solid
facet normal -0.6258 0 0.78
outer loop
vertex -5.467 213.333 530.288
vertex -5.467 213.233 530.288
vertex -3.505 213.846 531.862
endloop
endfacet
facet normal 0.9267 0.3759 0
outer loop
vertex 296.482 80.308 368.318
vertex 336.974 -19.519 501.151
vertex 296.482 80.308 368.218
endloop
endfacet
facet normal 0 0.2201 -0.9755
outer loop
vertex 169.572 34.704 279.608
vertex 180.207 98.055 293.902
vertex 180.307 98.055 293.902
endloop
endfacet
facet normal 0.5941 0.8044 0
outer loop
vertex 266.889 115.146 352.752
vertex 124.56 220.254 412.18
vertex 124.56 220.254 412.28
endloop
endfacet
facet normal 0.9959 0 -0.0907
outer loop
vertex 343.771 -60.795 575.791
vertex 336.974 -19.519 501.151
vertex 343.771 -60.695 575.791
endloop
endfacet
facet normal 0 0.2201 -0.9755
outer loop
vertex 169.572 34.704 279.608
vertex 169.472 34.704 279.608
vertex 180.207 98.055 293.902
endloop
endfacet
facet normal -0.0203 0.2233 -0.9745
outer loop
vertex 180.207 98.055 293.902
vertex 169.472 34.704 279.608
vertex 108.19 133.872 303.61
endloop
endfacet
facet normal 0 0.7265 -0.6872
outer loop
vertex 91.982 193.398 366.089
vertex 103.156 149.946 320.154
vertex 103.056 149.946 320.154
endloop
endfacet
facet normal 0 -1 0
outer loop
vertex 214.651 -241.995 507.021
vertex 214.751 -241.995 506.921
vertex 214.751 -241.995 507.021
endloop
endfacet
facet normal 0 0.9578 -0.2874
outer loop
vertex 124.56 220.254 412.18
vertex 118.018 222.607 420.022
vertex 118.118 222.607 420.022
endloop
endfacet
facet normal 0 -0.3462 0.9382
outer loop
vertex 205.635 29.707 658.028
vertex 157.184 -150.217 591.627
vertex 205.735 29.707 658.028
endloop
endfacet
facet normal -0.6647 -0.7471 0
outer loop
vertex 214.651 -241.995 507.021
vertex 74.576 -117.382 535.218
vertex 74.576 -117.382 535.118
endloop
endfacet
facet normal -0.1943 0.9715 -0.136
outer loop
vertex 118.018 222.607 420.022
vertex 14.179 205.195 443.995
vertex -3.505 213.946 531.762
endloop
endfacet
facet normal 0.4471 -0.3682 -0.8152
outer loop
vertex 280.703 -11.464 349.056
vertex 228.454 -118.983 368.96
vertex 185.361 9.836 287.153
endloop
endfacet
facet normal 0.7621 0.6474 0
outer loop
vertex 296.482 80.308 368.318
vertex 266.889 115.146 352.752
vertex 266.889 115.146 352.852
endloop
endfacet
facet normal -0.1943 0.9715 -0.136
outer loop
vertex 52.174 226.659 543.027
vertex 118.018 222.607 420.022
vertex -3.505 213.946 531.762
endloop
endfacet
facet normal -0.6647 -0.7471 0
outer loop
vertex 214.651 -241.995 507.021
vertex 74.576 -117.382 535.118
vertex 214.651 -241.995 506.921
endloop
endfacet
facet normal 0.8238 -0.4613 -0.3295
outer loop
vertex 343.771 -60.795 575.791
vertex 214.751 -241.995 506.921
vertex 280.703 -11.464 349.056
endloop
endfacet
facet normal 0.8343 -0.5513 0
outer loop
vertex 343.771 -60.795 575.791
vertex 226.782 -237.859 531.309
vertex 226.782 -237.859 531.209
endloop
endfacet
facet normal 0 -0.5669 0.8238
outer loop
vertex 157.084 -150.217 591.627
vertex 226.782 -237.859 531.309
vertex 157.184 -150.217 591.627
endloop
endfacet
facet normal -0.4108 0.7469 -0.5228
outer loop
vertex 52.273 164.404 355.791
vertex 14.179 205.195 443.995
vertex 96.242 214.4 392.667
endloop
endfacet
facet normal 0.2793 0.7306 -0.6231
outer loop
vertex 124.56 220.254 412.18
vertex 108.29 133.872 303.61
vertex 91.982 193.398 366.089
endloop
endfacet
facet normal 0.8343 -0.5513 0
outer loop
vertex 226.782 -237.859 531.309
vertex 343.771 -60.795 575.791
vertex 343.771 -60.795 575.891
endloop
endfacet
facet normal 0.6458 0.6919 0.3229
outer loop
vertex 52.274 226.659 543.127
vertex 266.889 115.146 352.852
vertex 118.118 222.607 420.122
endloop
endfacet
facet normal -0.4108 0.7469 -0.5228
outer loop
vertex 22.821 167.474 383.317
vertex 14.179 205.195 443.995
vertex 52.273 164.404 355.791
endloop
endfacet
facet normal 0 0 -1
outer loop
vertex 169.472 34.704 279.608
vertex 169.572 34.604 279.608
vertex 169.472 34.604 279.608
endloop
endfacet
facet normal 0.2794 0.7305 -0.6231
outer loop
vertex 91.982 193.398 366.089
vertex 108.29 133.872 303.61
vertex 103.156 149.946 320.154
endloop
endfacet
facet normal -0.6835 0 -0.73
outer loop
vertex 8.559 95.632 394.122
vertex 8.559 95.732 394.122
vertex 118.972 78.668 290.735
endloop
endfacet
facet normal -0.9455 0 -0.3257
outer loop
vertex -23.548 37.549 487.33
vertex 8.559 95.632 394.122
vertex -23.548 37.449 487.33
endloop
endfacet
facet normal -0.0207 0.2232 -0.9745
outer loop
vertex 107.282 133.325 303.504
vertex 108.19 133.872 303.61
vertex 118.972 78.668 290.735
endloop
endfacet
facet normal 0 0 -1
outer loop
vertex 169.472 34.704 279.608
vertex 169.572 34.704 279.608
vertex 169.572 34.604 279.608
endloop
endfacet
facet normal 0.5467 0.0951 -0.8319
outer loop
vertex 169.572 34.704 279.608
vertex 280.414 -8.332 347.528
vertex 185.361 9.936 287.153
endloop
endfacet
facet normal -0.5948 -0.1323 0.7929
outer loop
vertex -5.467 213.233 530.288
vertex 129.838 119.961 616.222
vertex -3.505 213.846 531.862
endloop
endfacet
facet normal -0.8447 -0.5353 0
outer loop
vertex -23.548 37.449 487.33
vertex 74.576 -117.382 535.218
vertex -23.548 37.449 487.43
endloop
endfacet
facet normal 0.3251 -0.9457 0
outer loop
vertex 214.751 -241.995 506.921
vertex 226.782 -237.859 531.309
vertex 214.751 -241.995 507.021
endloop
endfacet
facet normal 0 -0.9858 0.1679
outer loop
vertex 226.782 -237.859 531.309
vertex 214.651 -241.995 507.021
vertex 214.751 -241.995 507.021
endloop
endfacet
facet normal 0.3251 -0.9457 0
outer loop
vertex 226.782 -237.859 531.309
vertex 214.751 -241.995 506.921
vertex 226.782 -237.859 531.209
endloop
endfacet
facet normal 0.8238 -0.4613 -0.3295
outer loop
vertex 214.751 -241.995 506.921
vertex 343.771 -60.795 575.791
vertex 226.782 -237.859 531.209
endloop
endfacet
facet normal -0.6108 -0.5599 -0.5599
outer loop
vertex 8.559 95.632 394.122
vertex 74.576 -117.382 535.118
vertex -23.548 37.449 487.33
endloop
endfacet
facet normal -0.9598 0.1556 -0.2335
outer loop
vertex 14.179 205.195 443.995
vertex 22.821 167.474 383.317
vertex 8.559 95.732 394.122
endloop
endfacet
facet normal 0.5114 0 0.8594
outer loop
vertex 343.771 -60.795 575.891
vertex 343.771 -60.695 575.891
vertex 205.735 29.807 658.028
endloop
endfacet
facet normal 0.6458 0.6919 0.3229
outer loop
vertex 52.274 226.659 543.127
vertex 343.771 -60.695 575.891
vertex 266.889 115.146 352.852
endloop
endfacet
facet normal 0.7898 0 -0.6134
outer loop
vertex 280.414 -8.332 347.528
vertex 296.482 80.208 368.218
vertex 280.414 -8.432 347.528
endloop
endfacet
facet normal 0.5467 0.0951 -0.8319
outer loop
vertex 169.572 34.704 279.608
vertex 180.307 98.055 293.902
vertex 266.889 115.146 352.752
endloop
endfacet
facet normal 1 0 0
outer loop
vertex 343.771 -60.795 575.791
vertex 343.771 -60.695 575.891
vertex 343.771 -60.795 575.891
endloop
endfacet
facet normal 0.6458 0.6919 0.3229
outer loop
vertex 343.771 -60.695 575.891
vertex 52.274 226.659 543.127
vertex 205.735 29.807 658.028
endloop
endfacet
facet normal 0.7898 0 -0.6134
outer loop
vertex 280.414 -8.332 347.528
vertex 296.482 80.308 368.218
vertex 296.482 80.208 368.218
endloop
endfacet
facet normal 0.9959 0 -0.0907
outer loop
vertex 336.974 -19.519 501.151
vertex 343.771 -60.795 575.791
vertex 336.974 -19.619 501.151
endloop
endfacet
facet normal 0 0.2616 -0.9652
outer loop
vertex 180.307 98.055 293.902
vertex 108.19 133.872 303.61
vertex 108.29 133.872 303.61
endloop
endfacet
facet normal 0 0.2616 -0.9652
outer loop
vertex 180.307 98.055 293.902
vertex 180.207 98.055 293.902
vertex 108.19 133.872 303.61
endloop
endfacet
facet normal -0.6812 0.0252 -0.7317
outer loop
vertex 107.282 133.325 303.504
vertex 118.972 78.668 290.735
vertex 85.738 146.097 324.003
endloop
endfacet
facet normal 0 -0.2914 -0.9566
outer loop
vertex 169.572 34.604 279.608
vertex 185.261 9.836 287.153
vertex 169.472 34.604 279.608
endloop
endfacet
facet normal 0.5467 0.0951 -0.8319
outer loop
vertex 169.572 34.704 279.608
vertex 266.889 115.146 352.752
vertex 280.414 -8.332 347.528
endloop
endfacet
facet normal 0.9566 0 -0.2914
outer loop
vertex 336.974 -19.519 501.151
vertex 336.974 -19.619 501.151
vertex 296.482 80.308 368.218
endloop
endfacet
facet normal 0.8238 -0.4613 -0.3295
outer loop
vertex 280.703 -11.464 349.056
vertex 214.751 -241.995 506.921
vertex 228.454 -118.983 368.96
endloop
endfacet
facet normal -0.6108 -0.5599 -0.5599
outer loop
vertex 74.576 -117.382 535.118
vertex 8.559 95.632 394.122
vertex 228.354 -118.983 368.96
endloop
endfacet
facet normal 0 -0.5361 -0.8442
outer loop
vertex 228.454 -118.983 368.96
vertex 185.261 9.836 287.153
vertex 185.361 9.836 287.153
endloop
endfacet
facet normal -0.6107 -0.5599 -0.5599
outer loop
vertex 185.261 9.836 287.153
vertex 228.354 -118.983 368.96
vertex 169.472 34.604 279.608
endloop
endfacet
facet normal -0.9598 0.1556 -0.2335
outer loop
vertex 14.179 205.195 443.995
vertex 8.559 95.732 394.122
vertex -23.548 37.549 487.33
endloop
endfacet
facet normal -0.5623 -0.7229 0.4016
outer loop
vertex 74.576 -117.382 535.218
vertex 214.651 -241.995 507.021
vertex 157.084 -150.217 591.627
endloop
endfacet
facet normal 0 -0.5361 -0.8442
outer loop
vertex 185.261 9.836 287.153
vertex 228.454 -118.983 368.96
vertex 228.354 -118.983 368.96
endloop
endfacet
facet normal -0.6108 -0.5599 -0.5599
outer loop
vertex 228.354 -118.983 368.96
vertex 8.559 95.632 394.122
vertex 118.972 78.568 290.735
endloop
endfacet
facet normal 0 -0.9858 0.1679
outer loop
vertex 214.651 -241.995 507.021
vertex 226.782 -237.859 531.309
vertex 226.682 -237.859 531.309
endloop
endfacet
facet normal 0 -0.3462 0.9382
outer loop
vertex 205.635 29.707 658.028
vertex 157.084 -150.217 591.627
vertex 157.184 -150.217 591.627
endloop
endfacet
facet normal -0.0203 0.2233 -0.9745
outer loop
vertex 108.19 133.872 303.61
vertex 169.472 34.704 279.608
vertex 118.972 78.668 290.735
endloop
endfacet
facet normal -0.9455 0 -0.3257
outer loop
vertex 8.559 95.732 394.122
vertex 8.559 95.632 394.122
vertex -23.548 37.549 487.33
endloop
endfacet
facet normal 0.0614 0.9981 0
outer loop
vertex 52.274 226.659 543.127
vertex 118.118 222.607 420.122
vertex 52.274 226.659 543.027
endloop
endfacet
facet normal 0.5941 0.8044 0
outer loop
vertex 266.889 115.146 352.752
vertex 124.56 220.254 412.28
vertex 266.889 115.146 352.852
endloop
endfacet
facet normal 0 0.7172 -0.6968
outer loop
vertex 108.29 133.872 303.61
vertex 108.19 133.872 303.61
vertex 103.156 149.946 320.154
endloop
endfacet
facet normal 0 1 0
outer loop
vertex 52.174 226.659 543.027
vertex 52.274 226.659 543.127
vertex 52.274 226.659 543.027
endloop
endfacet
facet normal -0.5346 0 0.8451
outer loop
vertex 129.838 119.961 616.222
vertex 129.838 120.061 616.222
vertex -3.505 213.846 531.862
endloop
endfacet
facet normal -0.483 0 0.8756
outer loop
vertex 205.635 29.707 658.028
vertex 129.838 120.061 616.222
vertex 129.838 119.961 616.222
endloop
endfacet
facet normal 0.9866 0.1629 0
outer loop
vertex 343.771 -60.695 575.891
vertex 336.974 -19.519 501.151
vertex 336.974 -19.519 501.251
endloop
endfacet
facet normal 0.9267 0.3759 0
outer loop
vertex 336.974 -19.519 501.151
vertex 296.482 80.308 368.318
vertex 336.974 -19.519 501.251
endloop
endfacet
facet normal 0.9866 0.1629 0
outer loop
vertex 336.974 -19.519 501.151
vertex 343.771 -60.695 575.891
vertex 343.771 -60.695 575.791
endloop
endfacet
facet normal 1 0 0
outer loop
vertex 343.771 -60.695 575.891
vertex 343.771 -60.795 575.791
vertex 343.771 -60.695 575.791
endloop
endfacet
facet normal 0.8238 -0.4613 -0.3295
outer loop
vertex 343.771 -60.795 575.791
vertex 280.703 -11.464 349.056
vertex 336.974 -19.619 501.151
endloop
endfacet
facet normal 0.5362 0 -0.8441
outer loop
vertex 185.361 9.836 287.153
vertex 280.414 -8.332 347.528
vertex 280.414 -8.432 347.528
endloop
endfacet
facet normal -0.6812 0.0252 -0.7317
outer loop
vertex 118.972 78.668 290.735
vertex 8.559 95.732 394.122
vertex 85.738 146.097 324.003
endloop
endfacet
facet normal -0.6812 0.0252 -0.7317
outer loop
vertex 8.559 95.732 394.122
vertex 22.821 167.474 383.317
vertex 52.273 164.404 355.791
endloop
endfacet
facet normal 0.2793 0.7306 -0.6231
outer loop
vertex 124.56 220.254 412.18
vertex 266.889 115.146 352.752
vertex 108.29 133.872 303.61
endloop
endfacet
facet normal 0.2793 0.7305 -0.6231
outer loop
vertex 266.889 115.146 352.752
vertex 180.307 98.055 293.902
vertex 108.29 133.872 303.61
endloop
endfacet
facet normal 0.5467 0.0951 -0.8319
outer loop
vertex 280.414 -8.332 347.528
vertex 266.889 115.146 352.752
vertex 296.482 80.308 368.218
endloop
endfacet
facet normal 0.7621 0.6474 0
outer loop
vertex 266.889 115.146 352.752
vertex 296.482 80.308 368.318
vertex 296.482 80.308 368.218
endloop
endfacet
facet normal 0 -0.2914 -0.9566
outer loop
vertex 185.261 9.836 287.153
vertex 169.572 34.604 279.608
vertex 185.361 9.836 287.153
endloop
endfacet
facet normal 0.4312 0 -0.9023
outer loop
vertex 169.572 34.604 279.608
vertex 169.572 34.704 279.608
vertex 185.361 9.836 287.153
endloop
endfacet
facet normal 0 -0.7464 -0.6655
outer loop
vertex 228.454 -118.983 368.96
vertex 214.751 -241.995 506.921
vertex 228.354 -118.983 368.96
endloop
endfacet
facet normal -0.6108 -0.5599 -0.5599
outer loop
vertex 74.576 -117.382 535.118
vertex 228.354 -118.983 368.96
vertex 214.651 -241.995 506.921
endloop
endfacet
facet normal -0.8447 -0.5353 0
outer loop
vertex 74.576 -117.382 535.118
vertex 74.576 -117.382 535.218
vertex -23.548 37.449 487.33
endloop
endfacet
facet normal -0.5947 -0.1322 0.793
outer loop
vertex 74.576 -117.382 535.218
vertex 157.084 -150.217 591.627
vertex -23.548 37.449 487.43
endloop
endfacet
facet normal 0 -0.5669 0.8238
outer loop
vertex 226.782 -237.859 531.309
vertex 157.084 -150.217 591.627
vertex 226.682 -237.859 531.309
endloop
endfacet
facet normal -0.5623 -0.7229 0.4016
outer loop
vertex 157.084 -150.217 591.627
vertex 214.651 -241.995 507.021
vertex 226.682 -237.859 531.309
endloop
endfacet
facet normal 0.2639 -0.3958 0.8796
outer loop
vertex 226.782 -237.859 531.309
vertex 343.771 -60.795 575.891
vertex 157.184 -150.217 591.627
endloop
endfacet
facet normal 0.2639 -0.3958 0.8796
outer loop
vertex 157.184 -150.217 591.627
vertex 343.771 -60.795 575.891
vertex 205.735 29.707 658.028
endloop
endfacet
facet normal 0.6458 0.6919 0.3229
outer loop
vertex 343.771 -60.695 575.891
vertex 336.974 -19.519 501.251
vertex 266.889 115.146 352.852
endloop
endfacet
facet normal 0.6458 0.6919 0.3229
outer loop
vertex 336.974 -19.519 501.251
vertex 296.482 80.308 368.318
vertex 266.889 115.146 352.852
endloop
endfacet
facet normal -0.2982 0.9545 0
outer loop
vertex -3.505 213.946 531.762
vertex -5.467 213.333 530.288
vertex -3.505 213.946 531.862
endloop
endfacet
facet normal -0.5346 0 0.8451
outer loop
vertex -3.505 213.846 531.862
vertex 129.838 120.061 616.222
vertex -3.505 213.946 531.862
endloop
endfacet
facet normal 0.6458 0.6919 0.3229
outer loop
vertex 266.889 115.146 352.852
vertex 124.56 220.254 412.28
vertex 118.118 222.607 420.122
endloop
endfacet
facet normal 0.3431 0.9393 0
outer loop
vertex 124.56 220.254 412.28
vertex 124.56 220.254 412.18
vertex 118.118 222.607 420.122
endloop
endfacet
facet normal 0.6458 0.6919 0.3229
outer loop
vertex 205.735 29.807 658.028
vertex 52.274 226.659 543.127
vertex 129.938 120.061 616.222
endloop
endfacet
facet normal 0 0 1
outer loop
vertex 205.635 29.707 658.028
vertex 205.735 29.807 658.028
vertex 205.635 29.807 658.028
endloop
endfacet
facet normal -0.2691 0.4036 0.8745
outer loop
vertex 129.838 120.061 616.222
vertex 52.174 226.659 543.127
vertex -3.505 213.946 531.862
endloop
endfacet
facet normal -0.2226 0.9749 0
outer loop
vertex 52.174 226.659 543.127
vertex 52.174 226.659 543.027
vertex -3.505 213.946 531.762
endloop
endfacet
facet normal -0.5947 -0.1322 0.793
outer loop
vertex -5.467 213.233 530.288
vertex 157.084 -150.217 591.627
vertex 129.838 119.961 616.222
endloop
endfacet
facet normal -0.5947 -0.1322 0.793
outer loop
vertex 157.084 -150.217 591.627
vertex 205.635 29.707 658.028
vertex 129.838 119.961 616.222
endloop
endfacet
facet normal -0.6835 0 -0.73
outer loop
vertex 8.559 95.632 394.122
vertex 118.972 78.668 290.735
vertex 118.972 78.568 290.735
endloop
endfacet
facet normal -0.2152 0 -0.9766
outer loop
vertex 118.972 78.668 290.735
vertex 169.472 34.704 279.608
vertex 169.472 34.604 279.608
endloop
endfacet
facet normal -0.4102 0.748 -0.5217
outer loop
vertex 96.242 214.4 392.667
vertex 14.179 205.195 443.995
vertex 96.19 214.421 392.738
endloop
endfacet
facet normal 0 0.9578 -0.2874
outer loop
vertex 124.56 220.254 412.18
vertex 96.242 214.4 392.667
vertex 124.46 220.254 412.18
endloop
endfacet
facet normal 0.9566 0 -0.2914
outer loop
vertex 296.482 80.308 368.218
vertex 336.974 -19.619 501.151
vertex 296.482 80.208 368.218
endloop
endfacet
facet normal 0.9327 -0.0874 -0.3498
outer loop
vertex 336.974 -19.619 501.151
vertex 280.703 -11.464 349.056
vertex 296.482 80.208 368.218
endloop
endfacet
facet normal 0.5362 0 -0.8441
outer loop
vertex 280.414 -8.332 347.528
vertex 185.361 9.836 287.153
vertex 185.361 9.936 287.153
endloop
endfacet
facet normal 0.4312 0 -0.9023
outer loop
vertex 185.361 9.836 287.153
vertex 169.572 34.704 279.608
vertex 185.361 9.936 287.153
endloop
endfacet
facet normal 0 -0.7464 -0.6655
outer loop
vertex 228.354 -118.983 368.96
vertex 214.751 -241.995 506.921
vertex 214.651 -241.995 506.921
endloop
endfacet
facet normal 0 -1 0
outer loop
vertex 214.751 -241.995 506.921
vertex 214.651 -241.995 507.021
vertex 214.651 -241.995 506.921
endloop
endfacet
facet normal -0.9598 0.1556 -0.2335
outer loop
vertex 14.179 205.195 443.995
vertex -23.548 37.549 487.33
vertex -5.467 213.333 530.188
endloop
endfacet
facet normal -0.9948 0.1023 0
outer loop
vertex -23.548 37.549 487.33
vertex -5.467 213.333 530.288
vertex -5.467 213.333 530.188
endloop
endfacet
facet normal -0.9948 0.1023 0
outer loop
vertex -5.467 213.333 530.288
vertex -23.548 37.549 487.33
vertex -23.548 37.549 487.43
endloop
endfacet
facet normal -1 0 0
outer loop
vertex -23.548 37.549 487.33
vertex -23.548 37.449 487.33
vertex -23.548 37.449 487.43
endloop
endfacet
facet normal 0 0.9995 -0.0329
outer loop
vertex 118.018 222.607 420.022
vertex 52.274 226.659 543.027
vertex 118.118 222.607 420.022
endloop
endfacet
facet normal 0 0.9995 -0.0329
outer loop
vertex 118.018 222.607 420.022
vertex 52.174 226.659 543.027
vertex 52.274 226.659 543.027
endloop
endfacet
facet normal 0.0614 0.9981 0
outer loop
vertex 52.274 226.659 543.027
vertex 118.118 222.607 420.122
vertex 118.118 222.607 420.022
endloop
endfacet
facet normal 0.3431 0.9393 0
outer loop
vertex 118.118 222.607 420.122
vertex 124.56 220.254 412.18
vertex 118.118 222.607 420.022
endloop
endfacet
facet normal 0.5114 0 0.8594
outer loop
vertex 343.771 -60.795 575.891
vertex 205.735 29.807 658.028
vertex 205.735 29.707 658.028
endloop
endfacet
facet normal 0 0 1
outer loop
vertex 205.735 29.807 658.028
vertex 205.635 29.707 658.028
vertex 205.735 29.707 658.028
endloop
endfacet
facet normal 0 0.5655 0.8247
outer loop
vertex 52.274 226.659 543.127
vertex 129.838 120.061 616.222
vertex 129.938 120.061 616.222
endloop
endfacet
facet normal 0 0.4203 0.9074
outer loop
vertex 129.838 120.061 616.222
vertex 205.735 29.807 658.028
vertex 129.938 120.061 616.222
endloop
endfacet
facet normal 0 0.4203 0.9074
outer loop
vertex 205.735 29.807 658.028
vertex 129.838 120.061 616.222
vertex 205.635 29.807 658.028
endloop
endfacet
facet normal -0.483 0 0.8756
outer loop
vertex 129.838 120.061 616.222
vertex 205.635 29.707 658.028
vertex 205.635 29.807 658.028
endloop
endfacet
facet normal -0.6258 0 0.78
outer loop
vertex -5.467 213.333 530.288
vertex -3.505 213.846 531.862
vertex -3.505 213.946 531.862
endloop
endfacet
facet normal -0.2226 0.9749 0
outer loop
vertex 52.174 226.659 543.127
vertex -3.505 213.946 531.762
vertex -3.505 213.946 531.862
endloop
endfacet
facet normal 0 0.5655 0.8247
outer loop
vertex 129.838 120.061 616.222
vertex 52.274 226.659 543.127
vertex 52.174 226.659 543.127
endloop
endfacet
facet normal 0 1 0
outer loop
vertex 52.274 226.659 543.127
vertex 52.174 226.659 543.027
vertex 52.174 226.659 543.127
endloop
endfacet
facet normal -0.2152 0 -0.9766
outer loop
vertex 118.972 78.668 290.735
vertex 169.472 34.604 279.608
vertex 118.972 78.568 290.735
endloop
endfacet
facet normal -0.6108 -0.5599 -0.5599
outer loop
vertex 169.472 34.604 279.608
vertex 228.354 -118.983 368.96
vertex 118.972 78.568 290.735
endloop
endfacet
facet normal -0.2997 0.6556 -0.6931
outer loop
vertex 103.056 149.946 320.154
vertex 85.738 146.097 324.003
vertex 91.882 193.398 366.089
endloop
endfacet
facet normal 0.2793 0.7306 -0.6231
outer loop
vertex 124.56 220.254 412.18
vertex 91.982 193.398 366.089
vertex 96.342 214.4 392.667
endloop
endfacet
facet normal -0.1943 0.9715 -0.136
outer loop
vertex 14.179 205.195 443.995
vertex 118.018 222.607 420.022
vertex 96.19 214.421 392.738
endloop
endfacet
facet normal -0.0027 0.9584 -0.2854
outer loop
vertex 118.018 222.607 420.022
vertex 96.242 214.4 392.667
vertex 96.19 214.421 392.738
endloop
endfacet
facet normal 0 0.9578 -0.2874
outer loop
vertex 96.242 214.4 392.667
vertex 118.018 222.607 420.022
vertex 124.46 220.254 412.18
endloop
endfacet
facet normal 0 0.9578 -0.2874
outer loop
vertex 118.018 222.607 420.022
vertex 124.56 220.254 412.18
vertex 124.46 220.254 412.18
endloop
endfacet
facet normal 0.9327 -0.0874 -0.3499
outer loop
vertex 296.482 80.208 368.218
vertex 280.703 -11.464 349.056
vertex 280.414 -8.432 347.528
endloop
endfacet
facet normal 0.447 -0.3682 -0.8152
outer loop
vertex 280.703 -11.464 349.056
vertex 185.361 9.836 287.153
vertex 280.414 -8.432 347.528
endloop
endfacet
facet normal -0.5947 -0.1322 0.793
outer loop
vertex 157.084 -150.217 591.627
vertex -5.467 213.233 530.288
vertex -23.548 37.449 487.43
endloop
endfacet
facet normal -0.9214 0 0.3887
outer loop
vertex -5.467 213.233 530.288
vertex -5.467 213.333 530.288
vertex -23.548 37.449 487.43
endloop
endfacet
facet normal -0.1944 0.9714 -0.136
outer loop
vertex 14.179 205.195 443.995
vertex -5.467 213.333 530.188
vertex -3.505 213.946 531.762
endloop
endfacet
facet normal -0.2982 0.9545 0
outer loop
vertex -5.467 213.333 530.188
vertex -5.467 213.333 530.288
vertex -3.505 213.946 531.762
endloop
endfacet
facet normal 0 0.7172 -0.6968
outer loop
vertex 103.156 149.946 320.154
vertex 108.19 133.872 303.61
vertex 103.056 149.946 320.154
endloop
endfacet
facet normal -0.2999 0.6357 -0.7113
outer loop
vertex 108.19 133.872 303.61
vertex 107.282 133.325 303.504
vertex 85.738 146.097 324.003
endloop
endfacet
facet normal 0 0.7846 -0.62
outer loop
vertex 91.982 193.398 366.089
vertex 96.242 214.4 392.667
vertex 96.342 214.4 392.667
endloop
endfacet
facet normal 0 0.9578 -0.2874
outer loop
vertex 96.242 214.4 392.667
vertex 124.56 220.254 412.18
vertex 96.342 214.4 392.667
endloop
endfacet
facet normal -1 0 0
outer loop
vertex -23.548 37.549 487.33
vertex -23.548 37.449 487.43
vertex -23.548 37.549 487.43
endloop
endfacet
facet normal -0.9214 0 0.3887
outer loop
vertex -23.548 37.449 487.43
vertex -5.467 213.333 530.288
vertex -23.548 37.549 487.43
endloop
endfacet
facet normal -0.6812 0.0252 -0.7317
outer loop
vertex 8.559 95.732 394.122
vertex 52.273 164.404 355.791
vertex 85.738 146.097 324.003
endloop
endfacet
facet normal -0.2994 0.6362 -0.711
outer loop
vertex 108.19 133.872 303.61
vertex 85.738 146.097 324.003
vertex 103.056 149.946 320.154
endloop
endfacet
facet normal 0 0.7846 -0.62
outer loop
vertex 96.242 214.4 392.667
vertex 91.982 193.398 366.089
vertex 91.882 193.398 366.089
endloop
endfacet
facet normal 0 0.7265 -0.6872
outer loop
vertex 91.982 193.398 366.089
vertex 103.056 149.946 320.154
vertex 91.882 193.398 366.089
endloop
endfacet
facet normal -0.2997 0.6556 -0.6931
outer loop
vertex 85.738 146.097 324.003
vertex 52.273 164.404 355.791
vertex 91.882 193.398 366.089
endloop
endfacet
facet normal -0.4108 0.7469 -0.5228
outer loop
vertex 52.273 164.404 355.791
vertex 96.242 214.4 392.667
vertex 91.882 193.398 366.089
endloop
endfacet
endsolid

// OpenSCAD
hull(){ translate([180.206618909,97.9551240305,293.90207803])cube(0.1,0.1,0.1);
translate([169.472046175,34.6044590312,279.607854233])cube(0.1,0.1,0.1);
translate([108.189891459,133.771516281,303.610349742])cube(0.1,0.1,0.1);
translate([185.260617761,9.83590733591,287.152509653])cube(0.1,0.1,0.1);
translate([280.313927686,-8.43166688422,347.52839055])cube(0.1,0.1,0.1);
translate([118.972455348,78.5678932645,290.73488272])cube(0.1,0.1,0.1);
translate([107.281701045,133.225405077,303.504119892])cube(0.1,0.1,0.1);
translate([103.055555556,149.845679012,320.154320988])cube(0.1,0.1,0.1);
translate([85.737704918,145.99726776,324.00273224])cube(0.1,0.1,0.1);
translate([8.5593220339,95.6317411402,394.121725732])cube(0.1,0.1,0.1);
translate([52.272834832,164.303715097,355.790937056])cube(0.1,0.1,0.1);
translate([22.8212881766,167.373752646,383.317205927])cube(0.1,0.1,0.1);
translate([14.1786877617,205.095102373,443.995463006])cube(0.1,0.1,0.1);
translate([91.8821668644,193.297746145,366.089363385])cube(0.1,0.1,0.1);
translate([96.1904761905,214.321428571,392.738095238])cube(0.1,0.1,0.1);
translate([96.241956242,214.30019305,392.667310167])cube(0.1,0.1,0.1);
translate([228.353815216,-118.982795218,368.960451346])cube(0.1,0.1,0.1);
translate([280.602551192,-11.4641378539,349.056170975])cube(0.1,0.1,0.1);
translate([-3.50534539474,213.845600329,531.761924342])cube(0.1,0.1,0.1);
translate([-5.46747803659,213.232852422,530.18820021])cube(0.1,0.1,0.1);
translate([-23.5480781509,37.4492401992,487.33048142])cube(0.1,0.1,0.1);
translate([74.5754716981,-117.382075472,535.117924528])cube(0.1,0.1,0.1);
translate([214.651201053,-241.994899638,506.920862126])cube(0.1,0.1,0.1);
translate([157.084247477,-150.217200527,591.52698552])cube(0.1,0.1,0.1);
translate([226.682310469,-237.859205776,531.20866426])cube(0.1,0.1,0.1);
translate([129.837872892,119.961089494,616.121919585])cube(0.1,0.1,0.1);
translate([205.635333457,29.7074122237,657.927735463])cube(0.1,0.1,0.1);
translate([52.1740297592,226.558521246,543.026537813])cube(0.1,0.1,0.1);
translate([118.017621145,222.50660793,420.022026432])cube(0.1,0.1,0.1);
translate([124.459655924,220.153864793,412.179549309])cube(0.1,0.1,0.1);
translate([336.873674287,-19.6193730851,501.151308037])cube(0.1,0.1,0.1);
translate([343.670968628,-60.7952907256,575.790828585])cube(0.1,0.1,0.1);
translate([266.788990826,115.04587156,352.752293578])cube(0.1,0.1,0.1);
translate([296.382485631,80.207959953,368.217971695])cube(0.1,0.1,0.1); }
